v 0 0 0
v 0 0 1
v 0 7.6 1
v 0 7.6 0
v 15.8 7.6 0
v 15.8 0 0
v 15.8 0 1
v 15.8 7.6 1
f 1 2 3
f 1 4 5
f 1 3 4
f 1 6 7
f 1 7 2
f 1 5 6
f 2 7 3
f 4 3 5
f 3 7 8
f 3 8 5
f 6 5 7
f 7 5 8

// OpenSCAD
/* Warning, this is a very basic generator with a lot of approximation 
input data : [SSOP, E6A, 15.8x7.6mm, 48, , A, C04-01148A]
generated by com.zoubworld.electronics.cad.model3d.Basic
Date : Sun Feb 15 10:50:49 CET 2026
*/

//body
color("black")
translate([0,0,0])
cube([15.8,7.6,1.0], center=false);
